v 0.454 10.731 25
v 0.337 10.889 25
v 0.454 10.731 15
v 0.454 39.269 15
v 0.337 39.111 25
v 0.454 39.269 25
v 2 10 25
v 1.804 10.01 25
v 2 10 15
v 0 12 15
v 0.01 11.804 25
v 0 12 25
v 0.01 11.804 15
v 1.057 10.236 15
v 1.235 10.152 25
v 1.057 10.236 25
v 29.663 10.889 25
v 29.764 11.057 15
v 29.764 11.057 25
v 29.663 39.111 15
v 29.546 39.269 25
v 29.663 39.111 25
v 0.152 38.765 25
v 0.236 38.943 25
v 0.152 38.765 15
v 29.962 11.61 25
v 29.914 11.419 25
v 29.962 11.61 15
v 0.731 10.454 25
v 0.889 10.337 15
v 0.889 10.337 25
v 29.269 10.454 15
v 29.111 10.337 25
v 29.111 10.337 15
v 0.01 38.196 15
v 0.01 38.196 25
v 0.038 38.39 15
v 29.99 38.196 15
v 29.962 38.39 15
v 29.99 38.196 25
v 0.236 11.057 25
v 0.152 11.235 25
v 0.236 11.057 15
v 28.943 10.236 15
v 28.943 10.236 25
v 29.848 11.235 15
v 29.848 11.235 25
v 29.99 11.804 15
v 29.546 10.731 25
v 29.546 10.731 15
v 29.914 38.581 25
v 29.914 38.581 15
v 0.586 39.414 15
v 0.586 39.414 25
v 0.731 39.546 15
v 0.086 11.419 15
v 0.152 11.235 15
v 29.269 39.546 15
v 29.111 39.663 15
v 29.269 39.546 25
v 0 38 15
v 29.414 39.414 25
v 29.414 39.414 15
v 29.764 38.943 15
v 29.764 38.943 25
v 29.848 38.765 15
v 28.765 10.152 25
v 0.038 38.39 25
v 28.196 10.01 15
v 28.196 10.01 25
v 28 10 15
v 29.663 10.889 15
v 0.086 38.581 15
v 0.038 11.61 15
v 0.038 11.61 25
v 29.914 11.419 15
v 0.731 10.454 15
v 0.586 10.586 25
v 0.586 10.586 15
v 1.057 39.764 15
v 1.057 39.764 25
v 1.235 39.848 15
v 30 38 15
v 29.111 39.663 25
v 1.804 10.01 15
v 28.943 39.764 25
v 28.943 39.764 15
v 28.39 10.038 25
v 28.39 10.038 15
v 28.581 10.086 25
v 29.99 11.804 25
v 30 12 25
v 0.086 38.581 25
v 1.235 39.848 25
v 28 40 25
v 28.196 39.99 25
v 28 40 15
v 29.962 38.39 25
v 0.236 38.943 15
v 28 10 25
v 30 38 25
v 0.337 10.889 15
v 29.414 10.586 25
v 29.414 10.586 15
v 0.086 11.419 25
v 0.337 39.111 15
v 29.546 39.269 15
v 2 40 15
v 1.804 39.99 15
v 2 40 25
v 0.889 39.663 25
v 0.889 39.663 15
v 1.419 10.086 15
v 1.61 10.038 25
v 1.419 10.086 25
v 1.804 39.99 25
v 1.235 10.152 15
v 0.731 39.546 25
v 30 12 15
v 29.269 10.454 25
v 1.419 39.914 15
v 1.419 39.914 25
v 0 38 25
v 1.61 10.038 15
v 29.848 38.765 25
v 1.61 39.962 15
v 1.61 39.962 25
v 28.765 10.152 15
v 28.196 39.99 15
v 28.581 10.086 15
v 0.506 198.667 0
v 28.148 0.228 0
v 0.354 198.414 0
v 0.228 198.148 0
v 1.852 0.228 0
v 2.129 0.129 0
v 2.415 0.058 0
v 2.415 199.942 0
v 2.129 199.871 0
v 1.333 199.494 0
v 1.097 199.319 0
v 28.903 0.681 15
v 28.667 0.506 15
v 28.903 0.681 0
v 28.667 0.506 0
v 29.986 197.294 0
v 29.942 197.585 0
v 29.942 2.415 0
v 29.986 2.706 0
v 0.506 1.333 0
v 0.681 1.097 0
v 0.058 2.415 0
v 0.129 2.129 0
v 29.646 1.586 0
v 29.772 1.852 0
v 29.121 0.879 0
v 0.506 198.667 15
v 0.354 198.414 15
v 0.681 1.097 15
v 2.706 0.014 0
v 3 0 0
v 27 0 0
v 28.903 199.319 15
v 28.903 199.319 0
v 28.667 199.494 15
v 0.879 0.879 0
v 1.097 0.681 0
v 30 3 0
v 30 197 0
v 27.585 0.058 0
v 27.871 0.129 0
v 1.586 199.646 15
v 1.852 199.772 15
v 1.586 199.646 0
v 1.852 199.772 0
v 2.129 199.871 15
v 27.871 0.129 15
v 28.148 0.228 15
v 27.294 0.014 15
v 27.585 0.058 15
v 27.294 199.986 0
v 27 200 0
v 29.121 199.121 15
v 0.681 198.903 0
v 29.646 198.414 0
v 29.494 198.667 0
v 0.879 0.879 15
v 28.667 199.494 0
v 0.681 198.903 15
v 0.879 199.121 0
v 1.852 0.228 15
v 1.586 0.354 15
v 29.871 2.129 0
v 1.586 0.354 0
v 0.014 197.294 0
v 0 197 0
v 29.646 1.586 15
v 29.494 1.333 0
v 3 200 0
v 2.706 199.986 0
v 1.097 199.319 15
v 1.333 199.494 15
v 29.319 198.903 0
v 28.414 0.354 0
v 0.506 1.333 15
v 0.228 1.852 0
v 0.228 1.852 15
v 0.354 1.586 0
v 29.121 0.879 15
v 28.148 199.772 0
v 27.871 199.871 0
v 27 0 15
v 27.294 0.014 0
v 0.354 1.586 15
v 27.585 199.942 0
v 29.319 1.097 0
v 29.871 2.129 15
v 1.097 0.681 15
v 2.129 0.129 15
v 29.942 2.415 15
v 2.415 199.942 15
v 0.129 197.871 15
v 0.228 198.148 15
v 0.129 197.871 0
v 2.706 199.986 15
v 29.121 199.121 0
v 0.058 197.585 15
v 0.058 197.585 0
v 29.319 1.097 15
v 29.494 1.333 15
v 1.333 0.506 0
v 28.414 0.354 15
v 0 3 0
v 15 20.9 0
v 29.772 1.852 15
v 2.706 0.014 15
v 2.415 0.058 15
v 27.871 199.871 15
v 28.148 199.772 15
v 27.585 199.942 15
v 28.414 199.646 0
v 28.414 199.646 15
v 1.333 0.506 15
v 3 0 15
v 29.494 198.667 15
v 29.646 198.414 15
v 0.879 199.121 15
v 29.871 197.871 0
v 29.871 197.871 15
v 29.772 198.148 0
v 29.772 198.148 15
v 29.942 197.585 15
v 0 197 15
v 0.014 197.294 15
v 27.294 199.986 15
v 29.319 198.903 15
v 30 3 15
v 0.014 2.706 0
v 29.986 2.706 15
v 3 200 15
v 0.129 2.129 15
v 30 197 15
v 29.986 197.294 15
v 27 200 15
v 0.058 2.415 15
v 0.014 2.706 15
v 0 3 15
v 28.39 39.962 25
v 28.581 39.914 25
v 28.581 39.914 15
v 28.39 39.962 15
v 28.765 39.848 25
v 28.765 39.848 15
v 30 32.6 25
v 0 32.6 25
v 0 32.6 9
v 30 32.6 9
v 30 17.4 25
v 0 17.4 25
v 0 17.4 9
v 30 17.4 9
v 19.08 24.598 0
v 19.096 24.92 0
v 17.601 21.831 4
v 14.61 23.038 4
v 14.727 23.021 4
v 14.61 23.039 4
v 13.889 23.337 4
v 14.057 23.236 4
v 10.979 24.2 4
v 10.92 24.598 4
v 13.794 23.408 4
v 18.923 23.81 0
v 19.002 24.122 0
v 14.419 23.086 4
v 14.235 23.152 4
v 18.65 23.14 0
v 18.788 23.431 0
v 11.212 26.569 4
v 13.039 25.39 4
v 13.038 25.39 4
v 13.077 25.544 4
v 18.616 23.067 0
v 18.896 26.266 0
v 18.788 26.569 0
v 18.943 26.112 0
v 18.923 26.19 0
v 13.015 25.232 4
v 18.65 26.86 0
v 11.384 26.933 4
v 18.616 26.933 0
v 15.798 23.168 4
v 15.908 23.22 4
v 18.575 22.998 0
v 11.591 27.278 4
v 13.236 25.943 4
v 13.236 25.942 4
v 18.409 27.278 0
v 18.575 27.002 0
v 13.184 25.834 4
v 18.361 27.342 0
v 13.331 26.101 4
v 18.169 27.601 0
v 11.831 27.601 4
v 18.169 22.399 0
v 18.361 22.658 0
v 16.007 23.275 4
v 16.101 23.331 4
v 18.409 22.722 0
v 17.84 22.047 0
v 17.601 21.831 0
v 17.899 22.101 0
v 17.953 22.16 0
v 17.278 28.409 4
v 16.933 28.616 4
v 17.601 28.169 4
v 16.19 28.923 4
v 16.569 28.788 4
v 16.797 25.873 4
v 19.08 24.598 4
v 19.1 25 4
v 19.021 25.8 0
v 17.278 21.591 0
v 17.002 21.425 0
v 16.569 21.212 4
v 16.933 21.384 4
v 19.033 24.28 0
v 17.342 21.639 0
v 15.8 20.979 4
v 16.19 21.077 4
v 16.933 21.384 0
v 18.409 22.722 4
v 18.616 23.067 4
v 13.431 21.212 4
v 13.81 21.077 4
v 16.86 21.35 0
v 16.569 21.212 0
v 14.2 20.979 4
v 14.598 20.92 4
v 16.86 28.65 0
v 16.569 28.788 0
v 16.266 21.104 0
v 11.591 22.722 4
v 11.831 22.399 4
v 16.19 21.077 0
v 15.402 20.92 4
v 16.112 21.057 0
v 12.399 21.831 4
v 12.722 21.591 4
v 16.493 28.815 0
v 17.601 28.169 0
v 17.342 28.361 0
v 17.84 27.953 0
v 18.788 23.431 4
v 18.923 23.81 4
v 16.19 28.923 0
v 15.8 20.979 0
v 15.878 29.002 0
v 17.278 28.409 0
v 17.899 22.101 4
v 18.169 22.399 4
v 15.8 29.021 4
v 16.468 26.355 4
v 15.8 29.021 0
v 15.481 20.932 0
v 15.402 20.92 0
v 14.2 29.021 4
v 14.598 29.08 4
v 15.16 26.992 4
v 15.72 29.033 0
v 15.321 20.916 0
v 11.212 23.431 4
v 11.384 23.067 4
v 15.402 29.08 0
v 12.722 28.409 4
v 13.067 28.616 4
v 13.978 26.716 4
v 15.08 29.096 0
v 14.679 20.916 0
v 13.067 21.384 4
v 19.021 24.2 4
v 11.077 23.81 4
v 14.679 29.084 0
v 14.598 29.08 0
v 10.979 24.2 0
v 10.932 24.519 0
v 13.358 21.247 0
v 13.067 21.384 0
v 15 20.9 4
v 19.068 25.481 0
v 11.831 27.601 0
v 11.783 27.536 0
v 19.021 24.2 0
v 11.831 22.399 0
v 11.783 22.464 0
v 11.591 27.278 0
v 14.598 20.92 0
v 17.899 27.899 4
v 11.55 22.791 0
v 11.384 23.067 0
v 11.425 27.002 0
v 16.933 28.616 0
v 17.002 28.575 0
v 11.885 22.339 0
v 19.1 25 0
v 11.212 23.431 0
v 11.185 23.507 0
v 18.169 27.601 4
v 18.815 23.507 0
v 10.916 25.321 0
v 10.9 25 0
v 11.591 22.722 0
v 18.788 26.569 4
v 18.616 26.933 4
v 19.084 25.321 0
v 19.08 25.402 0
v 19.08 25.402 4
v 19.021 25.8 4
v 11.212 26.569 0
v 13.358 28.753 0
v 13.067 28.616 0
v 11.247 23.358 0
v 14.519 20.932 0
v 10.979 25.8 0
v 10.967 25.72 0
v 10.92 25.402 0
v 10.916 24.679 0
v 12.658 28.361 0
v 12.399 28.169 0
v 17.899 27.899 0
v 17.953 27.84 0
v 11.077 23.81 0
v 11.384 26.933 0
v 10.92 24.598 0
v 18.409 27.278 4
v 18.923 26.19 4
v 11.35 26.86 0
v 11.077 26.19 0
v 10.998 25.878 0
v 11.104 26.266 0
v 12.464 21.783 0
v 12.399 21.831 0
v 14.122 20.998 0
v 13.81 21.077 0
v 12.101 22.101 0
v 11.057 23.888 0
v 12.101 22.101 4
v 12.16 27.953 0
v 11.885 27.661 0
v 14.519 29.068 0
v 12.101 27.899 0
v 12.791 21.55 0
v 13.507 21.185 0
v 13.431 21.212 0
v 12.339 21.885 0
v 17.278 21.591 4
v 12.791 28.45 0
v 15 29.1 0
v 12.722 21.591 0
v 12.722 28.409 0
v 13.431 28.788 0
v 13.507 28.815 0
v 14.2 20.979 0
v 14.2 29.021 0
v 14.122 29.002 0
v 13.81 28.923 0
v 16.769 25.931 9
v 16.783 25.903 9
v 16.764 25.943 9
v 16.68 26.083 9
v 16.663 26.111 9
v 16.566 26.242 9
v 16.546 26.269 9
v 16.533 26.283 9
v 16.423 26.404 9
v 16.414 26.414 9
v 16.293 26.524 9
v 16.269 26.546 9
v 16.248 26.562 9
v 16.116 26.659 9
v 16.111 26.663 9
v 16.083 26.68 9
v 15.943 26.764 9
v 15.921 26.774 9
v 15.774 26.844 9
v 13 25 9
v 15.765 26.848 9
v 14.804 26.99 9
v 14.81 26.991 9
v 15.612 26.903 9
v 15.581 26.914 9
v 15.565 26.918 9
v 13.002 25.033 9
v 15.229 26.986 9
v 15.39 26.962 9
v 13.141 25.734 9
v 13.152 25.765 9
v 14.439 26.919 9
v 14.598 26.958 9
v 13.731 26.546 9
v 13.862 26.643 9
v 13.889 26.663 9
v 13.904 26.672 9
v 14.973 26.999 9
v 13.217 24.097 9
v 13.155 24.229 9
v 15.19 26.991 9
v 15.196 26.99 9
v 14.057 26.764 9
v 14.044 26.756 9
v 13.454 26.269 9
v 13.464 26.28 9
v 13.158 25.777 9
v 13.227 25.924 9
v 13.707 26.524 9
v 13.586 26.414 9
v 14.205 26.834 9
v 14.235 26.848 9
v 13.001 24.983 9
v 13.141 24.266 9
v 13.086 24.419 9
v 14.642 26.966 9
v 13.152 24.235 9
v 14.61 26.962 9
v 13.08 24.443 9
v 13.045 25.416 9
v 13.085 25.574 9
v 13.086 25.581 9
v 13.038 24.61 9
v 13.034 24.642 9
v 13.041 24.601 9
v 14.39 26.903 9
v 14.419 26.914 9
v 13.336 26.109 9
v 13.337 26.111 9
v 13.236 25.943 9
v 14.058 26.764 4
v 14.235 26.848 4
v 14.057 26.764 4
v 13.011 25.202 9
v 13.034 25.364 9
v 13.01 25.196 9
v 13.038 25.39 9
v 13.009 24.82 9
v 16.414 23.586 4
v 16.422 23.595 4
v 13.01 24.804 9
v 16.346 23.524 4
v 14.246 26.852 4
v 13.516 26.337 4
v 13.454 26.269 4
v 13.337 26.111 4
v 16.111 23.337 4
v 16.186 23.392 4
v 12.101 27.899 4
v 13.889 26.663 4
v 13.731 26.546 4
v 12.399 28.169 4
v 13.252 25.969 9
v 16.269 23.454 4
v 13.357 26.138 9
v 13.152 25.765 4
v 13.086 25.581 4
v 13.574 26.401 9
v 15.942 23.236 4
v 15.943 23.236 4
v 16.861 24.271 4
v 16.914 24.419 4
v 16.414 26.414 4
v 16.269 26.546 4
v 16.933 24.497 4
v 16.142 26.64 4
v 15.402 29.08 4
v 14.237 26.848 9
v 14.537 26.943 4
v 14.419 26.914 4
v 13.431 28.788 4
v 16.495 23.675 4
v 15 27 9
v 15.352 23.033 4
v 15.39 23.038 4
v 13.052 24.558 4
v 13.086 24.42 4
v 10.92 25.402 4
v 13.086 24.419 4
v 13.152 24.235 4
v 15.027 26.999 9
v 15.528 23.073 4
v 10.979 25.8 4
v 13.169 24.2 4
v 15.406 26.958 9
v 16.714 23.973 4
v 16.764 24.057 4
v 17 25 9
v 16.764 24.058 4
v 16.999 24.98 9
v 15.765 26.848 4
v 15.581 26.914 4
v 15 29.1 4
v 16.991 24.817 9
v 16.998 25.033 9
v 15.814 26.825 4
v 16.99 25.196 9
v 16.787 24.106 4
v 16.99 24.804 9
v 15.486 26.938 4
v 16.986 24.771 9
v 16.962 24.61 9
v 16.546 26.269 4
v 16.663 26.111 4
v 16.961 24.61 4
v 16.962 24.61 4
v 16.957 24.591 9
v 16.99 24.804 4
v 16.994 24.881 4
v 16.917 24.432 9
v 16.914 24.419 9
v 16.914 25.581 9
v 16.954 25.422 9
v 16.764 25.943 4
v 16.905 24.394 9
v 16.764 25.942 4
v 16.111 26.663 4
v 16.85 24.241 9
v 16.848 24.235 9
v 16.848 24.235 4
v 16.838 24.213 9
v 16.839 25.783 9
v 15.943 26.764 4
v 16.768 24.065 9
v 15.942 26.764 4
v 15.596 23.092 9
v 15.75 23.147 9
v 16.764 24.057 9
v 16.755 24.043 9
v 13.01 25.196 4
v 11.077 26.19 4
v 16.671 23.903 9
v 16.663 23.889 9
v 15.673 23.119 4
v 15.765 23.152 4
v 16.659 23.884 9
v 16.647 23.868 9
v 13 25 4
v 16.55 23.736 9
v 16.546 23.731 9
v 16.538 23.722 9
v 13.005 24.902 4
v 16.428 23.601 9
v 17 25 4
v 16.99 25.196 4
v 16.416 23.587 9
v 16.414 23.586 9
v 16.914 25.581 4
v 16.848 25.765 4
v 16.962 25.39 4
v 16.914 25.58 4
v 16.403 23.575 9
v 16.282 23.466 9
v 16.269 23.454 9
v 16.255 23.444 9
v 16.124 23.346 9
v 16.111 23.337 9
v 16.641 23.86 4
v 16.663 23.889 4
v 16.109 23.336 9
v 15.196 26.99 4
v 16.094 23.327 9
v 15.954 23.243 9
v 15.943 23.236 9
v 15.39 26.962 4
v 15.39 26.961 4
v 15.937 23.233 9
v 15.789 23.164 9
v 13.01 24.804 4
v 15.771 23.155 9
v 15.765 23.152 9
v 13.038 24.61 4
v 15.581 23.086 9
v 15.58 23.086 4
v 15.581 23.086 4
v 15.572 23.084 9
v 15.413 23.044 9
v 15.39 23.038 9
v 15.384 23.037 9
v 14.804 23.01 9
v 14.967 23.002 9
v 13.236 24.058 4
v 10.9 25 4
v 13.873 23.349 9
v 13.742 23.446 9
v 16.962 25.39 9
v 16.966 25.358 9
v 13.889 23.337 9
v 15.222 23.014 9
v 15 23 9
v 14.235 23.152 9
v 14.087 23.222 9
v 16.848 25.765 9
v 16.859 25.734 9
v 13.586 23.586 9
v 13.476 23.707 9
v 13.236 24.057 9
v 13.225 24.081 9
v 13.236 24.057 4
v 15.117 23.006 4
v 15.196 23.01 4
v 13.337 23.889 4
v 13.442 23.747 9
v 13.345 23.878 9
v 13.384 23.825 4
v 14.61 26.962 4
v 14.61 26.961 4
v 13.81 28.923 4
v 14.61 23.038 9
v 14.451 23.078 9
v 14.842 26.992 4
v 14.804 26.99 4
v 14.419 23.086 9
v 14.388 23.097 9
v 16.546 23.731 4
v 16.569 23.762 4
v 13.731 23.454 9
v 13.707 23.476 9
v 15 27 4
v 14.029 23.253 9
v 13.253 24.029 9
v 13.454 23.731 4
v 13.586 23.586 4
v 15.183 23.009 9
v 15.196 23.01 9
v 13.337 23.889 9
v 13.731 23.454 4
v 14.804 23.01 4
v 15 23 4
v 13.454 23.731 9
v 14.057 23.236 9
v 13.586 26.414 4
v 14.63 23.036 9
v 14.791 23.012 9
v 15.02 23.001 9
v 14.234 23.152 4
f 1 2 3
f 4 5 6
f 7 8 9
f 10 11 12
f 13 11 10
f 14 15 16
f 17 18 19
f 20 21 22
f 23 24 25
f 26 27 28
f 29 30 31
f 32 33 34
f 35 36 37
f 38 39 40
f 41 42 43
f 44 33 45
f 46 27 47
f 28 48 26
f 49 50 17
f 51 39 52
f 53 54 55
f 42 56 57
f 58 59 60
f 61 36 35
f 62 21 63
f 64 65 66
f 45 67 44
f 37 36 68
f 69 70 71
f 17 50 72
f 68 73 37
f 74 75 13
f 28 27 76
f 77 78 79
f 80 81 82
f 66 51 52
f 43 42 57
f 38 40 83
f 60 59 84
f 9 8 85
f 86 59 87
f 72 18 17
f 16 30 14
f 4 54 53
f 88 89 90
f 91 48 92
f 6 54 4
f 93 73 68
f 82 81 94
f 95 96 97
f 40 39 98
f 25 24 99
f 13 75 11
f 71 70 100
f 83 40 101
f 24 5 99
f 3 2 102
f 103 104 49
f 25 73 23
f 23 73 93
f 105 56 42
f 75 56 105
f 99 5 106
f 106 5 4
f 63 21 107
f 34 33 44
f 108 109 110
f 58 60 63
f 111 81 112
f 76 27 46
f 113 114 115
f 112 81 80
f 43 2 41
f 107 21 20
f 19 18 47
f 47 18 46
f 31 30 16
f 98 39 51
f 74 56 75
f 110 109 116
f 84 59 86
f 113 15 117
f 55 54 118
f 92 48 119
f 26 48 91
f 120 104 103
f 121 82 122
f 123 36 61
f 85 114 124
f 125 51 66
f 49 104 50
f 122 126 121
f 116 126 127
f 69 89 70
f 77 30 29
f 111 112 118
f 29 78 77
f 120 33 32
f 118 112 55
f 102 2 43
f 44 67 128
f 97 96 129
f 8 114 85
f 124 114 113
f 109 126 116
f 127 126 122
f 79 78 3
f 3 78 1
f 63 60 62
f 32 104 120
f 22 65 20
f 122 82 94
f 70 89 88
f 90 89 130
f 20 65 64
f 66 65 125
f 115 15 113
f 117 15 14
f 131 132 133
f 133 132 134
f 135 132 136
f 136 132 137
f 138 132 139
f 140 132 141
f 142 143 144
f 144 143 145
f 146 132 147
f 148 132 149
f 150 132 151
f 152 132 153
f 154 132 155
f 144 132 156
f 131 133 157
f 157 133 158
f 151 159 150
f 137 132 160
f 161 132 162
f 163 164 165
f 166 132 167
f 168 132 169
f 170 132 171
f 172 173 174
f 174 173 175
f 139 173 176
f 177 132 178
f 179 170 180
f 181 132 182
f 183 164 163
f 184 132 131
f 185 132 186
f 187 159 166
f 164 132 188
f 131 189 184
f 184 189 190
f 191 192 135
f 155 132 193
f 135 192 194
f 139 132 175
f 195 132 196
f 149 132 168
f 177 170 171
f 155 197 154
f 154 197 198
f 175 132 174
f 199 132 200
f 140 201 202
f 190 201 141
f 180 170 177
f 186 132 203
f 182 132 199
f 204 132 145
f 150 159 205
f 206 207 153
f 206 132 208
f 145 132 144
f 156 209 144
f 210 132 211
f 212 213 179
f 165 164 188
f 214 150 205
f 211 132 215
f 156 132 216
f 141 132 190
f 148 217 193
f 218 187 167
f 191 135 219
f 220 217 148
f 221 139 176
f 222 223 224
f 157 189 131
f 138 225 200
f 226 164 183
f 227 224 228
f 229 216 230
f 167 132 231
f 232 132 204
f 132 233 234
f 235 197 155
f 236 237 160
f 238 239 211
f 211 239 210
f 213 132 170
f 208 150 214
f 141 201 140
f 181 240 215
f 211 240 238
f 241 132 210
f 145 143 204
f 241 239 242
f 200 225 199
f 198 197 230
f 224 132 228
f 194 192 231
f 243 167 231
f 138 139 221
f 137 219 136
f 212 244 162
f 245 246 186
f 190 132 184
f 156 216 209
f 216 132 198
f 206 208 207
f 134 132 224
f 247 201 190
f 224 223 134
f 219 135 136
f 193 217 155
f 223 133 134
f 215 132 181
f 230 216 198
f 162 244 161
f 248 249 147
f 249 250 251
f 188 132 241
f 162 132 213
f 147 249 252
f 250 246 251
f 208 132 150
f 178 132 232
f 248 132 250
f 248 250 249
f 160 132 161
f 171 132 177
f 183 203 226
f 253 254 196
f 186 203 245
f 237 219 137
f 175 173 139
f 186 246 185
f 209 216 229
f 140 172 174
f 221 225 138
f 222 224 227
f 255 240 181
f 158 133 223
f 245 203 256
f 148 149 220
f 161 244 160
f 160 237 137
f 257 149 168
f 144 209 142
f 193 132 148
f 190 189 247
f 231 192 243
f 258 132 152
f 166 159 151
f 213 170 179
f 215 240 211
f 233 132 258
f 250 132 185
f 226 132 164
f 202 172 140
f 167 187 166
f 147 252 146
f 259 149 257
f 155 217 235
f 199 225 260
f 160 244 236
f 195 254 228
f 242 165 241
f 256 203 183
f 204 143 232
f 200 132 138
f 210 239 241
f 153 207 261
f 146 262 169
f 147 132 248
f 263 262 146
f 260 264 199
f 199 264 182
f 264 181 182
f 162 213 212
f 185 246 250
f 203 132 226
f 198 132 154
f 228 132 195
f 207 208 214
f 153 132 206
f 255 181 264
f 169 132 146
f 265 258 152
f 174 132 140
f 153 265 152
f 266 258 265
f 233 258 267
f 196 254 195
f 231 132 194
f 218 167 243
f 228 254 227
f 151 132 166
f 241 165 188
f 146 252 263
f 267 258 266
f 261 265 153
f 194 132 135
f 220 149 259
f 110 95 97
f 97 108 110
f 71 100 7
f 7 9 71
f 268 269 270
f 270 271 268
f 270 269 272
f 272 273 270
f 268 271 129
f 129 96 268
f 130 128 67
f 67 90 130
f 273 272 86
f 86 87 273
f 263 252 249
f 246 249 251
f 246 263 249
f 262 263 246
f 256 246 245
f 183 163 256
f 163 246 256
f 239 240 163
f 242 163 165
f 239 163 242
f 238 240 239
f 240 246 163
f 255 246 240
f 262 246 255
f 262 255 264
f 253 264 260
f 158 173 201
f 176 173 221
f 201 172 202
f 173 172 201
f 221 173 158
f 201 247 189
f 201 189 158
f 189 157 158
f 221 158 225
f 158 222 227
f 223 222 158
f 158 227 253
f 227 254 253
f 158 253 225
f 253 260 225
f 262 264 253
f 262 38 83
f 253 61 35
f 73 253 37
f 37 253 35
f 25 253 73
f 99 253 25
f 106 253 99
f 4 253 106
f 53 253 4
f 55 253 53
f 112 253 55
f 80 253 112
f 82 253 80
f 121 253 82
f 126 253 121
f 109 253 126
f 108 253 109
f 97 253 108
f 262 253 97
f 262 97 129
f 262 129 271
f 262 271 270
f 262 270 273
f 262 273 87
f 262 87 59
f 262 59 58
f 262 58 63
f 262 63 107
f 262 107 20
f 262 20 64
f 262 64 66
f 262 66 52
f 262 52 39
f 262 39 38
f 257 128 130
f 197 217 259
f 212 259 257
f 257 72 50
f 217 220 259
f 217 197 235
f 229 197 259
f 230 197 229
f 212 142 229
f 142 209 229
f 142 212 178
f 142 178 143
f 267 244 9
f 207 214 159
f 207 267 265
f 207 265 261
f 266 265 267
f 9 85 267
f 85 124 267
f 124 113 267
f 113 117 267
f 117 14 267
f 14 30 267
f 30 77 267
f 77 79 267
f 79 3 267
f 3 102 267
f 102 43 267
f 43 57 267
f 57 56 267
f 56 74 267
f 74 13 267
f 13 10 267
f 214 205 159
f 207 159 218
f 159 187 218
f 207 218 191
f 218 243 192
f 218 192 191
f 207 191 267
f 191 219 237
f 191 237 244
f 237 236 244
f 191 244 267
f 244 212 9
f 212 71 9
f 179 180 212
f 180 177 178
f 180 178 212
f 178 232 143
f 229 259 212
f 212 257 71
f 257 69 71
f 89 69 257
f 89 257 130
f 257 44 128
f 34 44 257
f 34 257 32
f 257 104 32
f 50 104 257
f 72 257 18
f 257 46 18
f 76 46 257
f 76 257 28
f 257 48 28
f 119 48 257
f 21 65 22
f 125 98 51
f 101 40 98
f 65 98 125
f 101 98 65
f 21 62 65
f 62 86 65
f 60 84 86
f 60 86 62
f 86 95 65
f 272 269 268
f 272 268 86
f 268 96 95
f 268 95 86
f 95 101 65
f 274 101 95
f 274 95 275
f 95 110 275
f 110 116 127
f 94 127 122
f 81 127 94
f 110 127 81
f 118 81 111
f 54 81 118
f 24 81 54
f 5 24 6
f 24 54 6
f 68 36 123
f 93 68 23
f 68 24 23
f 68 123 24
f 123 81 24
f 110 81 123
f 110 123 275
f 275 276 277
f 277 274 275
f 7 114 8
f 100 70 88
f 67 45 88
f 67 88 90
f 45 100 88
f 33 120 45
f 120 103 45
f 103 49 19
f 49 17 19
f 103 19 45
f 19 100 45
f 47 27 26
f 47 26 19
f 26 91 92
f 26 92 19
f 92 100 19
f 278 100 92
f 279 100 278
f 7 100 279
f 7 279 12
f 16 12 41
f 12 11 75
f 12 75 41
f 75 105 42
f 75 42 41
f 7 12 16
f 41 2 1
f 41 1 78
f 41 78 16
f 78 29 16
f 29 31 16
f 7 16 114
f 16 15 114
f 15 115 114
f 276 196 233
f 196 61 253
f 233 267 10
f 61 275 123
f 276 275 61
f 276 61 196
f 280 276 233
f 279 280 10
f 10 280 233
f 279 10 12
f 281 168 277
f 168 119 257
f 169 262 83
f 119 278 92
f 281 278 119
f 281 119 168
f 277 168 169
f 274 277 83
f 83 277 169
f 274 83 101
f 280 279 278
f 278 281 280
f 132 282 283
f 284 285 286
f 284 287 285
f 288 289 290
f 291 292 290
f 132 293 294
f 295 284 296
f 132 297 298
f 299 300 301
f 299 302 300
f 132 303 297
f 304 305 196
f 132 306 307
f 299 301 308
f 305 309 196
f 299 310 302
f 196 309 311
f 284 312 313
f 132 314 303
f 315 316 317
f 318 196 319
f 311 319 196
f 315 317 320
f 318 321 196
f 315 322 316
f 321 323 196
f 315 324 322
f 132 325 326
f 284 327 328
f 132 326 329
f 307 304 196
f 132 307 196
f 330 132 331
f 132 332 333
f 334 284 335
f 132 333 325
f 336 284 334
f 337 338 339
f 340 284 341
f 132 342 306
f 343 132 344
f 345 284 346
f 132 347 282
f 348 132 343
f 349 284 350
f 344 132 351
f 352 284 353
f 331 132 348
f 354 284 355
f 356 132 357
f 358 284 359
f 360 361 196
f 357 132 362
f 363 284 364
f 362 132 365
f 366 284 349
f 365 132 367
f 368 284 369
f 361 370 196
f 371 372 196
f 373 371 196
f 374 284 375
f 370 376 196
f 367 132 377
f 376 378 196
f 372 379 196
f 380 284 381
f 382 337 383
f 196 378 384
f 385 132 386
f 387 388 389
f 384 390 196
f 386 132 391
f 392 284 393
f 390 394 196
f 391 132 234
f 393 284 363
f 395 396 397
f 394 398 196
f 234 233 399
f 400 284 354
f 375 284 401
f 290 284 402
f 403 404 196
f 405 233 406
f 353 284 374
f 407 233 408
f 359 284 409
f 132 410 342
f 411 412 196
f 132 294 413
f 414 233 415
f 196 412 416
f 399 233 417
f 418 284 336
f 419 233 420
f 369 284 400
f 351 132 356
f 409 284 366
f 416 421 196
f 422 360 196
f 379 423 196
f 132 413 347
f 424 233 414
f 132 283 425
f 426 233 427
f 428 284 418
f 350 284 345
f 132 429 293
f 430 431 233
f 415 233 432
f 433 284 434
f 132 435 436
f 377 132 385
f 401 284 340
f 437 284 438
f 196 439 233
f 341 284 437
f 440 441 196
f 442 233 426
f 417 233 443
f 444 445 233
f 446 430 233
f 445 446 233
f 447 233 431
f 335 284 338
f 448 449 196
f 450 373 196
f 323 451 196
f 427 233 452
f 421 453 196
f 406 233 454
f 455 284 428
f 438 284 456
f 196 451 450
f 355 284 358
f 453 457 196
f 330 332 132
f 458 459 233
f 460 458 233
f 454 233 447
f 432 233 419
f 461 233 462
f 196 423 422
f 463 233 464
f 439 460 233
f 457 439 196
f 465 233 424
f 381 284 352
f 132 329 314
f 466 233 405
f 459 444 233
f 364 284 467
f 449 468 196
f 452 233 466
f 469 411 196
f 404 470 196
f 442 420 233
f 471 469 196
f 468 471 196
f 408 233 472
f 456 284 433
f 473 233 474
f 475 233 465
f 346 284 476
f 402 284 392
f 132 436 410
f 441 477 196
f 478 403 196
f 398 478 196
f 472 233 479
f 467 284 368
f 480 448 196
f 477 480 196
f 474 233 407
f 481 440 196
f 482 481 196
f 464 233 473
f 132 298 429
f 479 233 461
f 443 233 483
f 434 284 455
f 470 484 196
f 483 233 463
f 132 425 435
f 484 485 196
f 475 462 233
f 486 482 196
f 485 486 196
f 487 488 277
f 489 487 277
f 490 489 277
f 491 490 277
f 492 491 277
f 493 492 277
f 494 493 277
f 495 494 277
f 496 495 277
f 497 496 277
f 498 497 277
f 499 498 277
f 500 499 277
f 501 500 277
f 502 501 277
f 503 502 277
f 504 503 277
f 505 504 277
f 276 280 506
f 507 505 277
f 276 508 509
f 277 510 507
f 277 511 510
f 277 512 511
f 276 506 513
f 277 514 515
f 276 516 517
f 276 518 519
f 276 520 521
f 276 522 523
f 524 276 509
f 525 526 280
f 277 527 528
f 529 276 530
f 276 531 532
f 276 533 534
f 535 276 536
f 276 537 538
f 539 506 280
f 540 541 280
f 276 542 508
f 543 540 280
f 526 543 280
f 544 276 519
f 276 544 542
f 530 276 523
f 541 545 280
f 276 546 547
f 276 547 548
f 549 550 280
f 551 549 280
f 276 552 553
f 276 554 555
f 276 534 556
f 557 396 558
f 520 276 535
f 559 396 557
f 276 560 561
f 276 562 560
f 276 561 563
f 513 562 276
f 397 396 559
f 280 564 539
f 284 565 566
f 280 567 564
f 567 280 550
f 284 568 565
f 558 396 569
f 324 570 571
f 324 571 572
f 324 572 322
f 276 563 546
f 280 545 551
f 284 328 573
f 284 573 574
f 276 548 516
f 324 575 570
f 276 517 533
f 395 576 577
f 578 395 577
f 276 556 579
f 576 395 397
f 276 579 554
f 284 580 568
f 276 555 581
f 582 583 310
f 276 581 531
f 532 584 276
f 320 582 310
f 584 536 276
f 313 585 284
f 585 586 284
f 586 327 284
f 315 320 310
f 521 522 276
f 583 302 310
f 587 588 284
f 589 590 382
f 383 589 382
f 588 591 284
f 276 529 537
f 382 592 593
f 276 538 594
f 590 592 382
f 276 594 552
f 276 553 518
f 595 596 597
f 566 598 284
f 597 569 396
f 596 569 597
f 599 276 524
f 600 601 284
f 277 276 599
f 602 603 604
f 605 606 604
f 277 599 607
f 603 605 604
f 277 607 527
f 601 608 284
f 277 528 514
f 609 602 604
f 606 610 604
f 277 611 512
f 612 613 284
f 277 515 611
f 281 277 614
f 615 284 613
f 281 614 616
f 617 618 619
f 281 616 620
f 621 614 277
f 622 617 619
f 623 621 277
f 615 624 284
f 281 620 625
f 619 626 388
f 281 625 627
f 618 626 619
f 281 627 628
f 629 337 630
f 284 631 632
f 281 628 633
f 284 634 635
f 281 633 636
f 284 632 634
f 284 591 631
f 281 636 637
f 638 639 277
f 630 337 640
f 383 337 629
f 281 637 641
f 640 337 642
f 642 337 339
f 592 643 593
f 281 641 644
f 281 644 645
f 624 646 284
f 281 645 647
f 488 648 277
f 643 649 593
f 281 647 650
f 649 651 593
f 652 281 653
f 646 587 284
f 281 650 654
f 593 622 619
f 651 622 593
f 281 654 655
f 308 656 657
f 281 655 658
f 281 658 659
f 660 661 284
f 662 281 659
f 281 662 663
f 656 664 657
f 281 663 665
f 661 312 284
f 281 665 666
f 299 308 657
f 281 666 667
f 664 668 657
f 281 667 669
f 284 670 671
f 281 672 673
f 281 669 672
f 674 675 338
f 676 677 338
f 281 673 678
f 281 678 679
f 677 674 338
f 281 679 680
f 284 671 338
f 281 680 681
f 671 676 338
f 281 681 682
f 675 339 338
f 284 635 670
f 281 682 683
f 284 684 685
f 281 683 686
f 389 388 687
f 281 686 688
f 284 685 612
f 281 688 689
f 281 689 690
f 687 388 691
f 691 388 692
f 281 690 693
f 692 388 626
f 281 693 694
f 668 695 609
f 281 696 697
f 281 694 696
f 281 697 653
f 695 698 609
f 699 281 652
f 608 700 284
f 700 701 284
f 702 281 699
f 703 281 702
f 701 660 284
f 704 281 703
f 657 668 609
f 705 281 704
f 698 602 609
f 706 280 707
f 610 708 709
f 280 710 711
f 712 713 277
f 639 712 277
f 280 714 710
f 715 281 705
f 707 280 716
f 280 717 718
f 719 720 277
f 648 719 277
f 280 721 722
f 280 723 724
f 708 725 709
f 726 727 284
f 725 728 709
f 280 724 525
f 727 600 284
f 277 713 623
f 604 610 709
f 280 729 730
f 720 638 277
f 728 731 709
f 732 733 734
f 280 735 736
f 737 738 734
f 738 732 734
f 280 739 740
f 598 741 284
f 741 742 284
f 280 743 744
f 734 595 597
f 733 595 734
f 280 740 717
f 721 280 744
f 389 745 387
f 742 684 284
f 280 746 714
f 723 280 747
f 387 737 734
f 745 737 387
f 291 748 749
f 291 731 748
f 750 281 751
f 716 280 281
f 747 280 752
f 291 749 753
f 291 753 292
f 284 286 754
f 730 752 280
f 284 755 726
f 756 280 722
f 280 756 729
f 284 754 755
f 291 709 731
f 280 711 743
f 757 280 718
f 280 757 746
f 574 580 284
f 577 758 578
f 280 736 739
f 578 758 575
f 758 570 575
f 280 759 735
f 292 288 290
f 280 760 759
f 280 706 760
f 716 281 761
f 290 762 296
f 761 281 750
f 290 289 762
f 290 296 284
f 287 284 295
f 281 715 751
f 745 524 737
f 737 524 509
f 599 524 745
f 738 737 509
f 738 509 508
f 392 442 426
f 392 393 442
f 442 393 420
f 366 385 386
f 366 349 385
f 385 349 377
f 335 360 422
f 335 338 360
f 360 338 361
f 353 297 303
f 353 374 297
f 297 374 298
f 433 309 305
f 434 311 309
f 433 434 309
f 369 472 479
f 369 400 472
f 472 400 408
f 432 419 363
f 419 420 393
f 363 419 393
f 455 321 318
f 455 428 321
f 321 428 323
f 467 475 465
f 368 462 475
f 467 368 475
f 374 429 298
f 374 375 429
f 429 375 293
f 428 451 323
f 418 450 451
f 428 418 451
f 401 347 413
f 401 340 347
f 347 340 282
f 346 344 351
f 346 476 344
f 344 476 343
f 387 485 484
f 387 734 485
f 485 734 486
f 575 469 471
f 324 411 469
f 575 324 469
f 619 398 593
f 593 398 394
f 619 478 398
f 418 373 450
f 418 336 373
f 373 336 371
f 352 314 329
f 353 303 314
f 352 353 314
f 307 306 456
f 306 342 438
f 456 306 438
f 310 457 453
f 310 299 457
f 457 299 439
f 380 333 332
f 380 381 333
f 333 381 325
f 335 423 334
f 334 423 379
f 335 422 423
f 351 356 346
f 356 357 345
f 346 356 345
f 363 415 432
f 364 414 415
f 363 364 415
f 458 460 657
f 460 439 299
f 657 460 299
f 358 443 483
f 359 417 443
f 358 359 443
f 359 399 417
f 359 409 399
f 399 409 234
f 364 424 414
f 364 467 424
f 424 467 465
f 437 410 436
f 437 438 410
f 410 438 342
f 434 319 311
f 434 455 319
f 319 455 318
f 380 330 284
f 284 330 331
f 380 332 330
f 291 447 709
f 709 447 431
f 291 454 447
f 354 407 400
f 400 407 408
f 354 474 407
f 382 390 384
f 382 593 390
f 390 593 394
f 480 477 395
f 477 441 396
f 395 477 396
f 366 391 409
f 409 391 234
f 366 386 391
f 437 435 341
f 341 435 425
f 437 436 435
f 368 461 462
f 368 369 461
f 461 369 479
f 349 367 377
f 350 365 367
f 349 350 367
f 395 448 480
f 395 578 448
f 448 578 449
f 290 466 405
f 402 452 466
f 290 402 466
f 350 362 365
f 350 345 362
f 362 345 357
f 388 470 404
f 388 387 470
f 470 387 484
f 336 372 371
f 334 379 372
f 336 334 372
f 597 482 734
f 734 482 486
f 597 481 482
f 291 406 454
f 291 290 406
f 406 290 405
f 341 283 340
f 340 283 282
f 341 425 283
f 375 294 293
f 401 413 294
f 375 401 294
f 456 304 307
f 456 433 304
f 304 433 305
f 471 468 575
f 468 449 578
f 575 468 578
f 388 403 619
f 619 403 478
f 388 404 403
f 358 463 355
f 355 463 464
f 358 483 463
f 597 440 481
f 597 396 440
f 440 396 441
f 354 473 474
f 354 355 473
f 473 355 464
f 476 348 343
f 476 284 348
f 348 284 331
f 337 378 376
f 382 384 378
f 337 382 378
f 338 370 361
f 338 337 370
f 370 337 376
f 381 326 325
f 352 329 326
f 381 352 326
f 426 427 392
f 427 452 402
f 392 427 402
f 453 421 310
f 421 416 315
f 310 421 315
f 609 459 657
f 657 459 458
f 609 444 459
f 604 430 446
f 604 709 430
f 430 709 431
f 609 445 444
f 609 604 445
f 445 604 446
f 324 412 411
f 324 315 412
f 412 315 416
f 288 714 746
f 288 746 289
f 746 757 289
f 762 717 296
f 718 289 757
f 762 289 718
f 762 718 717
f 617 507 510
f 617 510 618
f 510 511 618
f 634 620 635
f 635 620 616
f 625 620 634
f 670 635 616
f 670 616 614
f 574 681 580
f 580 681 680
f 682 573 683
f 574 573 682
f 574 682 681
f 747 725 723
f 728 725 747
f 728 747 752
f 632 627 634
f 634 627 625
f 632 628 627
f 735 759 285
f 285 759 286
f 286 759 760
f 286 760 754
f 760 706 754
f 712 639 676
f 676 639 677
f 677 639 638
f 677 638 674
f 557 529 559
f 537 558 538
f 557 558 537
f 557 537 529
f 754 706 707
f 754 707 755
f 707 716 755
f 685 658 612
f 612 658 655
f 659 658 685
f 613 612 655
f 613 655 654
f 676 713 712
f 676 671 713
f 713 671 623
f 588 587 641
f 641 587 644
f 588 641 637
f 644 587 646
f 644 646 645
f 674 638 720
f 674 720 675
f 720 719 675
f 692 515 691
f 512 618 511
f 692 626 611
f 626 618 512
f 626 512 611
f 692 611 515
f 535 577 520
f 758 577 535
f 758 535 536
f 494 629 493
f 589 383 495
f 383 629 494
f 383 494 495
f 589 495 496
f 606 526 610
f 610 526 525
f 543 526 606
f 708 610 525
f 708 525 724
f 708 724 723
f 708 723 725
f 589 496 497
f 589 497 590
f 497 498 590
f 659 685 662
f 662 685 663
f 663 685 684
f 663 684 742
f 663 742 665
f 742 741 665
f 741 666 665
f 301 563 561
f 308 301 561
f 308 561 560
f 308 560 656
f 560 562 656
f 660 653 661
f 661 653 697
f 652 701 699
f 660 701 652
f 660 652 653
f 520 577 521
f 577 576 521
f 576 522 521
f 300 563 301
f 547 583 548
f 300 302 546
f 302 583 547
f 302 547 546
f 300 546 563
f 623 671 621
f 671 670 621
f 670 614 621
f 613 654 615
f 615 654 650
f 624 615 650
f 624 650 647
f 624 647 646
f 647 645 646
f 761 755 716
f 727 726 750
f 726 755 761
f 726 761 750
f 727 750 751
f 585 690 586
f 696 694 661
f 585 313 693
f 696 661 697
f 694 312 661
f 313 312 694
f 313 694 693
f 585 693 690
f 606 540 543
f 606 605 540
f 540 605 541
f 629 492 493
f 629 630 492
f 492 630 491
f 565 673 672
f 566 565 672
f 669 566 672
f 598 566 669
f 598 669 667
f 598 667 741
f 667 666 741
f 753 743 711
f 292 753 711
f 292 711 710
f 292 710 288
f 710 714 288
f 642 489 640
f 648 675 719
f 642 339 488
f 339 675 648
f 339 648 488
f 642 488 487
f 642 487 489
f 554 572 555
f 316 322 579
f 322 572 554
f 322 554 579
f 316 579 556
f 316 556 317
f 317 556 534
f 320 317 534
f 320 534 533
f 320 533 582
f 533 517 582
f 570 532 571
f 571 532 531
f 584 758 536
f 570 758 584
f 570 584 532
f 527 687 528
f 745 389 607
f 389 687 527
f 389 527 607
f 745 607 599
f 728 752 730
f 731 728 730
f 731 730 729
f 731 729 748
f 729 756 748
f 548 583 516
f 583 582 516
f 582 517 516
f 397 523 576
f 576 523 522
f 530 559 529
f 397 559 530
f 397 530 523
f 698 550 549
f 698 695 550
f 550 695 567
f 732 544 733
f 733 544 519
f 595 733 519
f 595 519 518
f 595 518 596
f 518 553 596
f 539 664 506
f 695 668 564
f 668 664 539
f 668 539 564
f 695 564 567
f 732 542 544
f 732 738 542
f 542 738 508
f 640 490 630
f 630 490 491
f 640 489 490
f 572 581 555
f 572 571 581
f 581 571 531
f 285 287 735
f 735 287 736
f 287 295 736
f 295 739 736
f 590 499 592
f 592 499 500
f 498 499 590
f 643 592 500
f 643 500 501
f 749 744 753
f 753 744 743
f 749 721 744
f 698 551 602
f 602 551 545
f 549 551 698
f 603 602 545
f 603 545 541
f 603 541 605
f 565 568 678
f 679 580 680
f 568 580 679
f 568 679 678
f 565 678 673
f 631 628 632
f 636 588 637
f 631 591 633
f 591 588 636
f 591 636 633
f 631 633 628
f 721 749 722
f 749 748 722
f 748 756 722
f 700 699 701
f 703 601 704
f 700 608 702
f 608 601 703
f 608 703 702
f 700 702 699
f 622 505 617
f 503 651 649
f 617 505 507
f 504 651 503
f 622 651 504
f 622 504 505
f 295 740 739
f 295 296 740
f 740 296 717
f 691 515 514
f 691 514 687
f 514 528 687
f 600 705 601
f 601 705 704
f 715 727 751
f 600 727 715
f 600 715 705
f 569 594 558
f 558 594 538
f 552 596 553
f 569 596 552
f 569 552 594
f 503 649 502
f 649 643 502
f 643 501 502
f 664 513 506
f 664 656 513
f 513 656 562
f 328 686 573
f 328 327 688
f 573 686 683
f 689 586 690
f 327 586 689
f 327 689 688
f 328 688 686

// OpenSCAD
// file: screw_holes.scad
/**
 * Generates a hole for screws, including screw shaft and head or shaft and nut.
 * This module can be parameterized to produce the necessary bodies.
 */
module screw_trap(hole = 3, top = 6, bottomHeight = 5, topHeight = 5, forNut = false) {
    translate([0, 0, -0.01]) cylinder(d = hole + 0.2, h = bottomHeight + 0.02);
    if (forNut) {
        upscaleRatio = 1/cos(180/6);
        translate([0, 0, bottomHeight]) cylinder(r = (top*0.99)/2 * upscaleRatio, h = topHeight, $fn=6);
    }
    else {
        translate([0, 0, bottomHeight]) cylinder(d = top + 0.2, h = topHeight);
    }
}

module nut_trap(hole_diameter = 3, size_head = 6, height_shaft = 5, height_trap = 5) {
    screw_trap(hole_diameter, size_head, height_shaft, height_trap, true);
}
// file: rounded_box.scad
/**
 * Small "library" for creating boxes with rounded edges.
 *
 * Hendrik Busch, 2017-18 (https://github.com/hmbusch)
 *
 */
 
/**
 * Creates a 2D-shape of a box with the given dimensions and rounded edges. 
 * Be sure to increase $fn for nicer edges.
 *
 * @param width
 *          the desired width of the box (default is 10mm)
 * @param depth
 *          the desired depth of the box (default is 10mm)
 * @param height
 *          the desired height of the box (default is 10mm)
 * @param edge_radius
 *          the radius of all the edges on the xy-plane (default is 2mm)
 */  
module box_with_round_edges_2d(width = 10, depth = 10, edge_radius = 2) {
    ed = edge_radius * 2;
    translate([edge_radius, edge_radius, 0]) hull() {
        circle(d = ed);
        translate([width - ed, 0, 0]) circle(d = ed);
        translate([0, depth - ed, 0]) circle(d = ed);
        translate([width - ed, depth - ed, 0]) circle(d = ed);    
    }
}
 
/**
 * Call to create a box with rounded edges (edges will be round on one plane only).
 * Be sure to increase $fn for nicer edges.
 * 
 * @param width
 *          the desired width of the box (default is 10mm)
 * @param depth
 *          the desired depth of the box (default is 10mm)
 * @param height
 *          the desired height of the box (default is 10mm)
 * @param edge_radius
 *          the radius of all the edges on the xy-plane (default is 2mm)
 *
 */
module box_with_round_edges_3d(width = 10, depth = 10, height = 10, edge_radius = 2) {
	linear_extrude(height = height) {
		box_with_round_edges_2d(width, depth, edge_radius);
	}
}

/**
 * Call to create a box with rounded edges (edges will be round on one plane only).
 * Be sure to increase $fn for nicer edges. This module has inputs that resemble
 * those of cube() so that it can act as a drop-in replacement.
 * 
 * @param dimensions
 *          3-value-array with x, y and z dimensions (default is 10x10x10mm).
 * @param edge_radius
 *          the radius of all the edges on the xy-plane (default is 2mm)
 *
 */
module box_with_round_edges_3d(dimensions = [10, 10, 10], edge_radius = 2) {
	linear_extrude(height = dimensions[2]) {
		box_with_round_edges_2d(dimensions[0], dimensions[1], edge_radius);
	}
}
// main file
include <rounded_box.scad>;
include <screw_holes.scad>;

Stand_Length = 200;
Stand_Width = 30;
Stand_Base_Height = 15;
Stand_Slot_Height = 10;
Stand_Slot_Length = 30;
Slot_Depth = 16;
Slot_Width = 15.2;
Slot_Offset = 10;

Screw_Diameter = 3.8;
Screw_Head_Diameter = 8;

$fn = 64;
f = 0.01;
df = 2*f;

difference() {
    union() {
        box_with_round_edges_3d([Stand_Width, Stand_Length, Stand_Base_Height], 3);
        translate([0, Slot_Offset, Stand_Base_Height])
            box_with_round_edges_3d([Stand_Width, Stand_Slot_Length, Stand_Slot_Height]); 
    }
    translate([-f, Slot_Offset + Stand_Slot_Length/2 - Slot_Width/2, Stand_Base_Height + Stand_Slot_Height -Slot_Depth])
        cube([Stand_Width + df, Slot_Width, Slot_Depth + f]);

    translate([Stand_Width/2, Slot_Offset + Stand_Slot_Length/2, Stand_Base_Height*2/3])
        rotate([0, 180, 0])
            screw_trap(Screw_Diameter, Screw_Head_Diameter, Stand_Base_Height * 1/3 + 1, Stand_Base_Height * 1/3);
}
